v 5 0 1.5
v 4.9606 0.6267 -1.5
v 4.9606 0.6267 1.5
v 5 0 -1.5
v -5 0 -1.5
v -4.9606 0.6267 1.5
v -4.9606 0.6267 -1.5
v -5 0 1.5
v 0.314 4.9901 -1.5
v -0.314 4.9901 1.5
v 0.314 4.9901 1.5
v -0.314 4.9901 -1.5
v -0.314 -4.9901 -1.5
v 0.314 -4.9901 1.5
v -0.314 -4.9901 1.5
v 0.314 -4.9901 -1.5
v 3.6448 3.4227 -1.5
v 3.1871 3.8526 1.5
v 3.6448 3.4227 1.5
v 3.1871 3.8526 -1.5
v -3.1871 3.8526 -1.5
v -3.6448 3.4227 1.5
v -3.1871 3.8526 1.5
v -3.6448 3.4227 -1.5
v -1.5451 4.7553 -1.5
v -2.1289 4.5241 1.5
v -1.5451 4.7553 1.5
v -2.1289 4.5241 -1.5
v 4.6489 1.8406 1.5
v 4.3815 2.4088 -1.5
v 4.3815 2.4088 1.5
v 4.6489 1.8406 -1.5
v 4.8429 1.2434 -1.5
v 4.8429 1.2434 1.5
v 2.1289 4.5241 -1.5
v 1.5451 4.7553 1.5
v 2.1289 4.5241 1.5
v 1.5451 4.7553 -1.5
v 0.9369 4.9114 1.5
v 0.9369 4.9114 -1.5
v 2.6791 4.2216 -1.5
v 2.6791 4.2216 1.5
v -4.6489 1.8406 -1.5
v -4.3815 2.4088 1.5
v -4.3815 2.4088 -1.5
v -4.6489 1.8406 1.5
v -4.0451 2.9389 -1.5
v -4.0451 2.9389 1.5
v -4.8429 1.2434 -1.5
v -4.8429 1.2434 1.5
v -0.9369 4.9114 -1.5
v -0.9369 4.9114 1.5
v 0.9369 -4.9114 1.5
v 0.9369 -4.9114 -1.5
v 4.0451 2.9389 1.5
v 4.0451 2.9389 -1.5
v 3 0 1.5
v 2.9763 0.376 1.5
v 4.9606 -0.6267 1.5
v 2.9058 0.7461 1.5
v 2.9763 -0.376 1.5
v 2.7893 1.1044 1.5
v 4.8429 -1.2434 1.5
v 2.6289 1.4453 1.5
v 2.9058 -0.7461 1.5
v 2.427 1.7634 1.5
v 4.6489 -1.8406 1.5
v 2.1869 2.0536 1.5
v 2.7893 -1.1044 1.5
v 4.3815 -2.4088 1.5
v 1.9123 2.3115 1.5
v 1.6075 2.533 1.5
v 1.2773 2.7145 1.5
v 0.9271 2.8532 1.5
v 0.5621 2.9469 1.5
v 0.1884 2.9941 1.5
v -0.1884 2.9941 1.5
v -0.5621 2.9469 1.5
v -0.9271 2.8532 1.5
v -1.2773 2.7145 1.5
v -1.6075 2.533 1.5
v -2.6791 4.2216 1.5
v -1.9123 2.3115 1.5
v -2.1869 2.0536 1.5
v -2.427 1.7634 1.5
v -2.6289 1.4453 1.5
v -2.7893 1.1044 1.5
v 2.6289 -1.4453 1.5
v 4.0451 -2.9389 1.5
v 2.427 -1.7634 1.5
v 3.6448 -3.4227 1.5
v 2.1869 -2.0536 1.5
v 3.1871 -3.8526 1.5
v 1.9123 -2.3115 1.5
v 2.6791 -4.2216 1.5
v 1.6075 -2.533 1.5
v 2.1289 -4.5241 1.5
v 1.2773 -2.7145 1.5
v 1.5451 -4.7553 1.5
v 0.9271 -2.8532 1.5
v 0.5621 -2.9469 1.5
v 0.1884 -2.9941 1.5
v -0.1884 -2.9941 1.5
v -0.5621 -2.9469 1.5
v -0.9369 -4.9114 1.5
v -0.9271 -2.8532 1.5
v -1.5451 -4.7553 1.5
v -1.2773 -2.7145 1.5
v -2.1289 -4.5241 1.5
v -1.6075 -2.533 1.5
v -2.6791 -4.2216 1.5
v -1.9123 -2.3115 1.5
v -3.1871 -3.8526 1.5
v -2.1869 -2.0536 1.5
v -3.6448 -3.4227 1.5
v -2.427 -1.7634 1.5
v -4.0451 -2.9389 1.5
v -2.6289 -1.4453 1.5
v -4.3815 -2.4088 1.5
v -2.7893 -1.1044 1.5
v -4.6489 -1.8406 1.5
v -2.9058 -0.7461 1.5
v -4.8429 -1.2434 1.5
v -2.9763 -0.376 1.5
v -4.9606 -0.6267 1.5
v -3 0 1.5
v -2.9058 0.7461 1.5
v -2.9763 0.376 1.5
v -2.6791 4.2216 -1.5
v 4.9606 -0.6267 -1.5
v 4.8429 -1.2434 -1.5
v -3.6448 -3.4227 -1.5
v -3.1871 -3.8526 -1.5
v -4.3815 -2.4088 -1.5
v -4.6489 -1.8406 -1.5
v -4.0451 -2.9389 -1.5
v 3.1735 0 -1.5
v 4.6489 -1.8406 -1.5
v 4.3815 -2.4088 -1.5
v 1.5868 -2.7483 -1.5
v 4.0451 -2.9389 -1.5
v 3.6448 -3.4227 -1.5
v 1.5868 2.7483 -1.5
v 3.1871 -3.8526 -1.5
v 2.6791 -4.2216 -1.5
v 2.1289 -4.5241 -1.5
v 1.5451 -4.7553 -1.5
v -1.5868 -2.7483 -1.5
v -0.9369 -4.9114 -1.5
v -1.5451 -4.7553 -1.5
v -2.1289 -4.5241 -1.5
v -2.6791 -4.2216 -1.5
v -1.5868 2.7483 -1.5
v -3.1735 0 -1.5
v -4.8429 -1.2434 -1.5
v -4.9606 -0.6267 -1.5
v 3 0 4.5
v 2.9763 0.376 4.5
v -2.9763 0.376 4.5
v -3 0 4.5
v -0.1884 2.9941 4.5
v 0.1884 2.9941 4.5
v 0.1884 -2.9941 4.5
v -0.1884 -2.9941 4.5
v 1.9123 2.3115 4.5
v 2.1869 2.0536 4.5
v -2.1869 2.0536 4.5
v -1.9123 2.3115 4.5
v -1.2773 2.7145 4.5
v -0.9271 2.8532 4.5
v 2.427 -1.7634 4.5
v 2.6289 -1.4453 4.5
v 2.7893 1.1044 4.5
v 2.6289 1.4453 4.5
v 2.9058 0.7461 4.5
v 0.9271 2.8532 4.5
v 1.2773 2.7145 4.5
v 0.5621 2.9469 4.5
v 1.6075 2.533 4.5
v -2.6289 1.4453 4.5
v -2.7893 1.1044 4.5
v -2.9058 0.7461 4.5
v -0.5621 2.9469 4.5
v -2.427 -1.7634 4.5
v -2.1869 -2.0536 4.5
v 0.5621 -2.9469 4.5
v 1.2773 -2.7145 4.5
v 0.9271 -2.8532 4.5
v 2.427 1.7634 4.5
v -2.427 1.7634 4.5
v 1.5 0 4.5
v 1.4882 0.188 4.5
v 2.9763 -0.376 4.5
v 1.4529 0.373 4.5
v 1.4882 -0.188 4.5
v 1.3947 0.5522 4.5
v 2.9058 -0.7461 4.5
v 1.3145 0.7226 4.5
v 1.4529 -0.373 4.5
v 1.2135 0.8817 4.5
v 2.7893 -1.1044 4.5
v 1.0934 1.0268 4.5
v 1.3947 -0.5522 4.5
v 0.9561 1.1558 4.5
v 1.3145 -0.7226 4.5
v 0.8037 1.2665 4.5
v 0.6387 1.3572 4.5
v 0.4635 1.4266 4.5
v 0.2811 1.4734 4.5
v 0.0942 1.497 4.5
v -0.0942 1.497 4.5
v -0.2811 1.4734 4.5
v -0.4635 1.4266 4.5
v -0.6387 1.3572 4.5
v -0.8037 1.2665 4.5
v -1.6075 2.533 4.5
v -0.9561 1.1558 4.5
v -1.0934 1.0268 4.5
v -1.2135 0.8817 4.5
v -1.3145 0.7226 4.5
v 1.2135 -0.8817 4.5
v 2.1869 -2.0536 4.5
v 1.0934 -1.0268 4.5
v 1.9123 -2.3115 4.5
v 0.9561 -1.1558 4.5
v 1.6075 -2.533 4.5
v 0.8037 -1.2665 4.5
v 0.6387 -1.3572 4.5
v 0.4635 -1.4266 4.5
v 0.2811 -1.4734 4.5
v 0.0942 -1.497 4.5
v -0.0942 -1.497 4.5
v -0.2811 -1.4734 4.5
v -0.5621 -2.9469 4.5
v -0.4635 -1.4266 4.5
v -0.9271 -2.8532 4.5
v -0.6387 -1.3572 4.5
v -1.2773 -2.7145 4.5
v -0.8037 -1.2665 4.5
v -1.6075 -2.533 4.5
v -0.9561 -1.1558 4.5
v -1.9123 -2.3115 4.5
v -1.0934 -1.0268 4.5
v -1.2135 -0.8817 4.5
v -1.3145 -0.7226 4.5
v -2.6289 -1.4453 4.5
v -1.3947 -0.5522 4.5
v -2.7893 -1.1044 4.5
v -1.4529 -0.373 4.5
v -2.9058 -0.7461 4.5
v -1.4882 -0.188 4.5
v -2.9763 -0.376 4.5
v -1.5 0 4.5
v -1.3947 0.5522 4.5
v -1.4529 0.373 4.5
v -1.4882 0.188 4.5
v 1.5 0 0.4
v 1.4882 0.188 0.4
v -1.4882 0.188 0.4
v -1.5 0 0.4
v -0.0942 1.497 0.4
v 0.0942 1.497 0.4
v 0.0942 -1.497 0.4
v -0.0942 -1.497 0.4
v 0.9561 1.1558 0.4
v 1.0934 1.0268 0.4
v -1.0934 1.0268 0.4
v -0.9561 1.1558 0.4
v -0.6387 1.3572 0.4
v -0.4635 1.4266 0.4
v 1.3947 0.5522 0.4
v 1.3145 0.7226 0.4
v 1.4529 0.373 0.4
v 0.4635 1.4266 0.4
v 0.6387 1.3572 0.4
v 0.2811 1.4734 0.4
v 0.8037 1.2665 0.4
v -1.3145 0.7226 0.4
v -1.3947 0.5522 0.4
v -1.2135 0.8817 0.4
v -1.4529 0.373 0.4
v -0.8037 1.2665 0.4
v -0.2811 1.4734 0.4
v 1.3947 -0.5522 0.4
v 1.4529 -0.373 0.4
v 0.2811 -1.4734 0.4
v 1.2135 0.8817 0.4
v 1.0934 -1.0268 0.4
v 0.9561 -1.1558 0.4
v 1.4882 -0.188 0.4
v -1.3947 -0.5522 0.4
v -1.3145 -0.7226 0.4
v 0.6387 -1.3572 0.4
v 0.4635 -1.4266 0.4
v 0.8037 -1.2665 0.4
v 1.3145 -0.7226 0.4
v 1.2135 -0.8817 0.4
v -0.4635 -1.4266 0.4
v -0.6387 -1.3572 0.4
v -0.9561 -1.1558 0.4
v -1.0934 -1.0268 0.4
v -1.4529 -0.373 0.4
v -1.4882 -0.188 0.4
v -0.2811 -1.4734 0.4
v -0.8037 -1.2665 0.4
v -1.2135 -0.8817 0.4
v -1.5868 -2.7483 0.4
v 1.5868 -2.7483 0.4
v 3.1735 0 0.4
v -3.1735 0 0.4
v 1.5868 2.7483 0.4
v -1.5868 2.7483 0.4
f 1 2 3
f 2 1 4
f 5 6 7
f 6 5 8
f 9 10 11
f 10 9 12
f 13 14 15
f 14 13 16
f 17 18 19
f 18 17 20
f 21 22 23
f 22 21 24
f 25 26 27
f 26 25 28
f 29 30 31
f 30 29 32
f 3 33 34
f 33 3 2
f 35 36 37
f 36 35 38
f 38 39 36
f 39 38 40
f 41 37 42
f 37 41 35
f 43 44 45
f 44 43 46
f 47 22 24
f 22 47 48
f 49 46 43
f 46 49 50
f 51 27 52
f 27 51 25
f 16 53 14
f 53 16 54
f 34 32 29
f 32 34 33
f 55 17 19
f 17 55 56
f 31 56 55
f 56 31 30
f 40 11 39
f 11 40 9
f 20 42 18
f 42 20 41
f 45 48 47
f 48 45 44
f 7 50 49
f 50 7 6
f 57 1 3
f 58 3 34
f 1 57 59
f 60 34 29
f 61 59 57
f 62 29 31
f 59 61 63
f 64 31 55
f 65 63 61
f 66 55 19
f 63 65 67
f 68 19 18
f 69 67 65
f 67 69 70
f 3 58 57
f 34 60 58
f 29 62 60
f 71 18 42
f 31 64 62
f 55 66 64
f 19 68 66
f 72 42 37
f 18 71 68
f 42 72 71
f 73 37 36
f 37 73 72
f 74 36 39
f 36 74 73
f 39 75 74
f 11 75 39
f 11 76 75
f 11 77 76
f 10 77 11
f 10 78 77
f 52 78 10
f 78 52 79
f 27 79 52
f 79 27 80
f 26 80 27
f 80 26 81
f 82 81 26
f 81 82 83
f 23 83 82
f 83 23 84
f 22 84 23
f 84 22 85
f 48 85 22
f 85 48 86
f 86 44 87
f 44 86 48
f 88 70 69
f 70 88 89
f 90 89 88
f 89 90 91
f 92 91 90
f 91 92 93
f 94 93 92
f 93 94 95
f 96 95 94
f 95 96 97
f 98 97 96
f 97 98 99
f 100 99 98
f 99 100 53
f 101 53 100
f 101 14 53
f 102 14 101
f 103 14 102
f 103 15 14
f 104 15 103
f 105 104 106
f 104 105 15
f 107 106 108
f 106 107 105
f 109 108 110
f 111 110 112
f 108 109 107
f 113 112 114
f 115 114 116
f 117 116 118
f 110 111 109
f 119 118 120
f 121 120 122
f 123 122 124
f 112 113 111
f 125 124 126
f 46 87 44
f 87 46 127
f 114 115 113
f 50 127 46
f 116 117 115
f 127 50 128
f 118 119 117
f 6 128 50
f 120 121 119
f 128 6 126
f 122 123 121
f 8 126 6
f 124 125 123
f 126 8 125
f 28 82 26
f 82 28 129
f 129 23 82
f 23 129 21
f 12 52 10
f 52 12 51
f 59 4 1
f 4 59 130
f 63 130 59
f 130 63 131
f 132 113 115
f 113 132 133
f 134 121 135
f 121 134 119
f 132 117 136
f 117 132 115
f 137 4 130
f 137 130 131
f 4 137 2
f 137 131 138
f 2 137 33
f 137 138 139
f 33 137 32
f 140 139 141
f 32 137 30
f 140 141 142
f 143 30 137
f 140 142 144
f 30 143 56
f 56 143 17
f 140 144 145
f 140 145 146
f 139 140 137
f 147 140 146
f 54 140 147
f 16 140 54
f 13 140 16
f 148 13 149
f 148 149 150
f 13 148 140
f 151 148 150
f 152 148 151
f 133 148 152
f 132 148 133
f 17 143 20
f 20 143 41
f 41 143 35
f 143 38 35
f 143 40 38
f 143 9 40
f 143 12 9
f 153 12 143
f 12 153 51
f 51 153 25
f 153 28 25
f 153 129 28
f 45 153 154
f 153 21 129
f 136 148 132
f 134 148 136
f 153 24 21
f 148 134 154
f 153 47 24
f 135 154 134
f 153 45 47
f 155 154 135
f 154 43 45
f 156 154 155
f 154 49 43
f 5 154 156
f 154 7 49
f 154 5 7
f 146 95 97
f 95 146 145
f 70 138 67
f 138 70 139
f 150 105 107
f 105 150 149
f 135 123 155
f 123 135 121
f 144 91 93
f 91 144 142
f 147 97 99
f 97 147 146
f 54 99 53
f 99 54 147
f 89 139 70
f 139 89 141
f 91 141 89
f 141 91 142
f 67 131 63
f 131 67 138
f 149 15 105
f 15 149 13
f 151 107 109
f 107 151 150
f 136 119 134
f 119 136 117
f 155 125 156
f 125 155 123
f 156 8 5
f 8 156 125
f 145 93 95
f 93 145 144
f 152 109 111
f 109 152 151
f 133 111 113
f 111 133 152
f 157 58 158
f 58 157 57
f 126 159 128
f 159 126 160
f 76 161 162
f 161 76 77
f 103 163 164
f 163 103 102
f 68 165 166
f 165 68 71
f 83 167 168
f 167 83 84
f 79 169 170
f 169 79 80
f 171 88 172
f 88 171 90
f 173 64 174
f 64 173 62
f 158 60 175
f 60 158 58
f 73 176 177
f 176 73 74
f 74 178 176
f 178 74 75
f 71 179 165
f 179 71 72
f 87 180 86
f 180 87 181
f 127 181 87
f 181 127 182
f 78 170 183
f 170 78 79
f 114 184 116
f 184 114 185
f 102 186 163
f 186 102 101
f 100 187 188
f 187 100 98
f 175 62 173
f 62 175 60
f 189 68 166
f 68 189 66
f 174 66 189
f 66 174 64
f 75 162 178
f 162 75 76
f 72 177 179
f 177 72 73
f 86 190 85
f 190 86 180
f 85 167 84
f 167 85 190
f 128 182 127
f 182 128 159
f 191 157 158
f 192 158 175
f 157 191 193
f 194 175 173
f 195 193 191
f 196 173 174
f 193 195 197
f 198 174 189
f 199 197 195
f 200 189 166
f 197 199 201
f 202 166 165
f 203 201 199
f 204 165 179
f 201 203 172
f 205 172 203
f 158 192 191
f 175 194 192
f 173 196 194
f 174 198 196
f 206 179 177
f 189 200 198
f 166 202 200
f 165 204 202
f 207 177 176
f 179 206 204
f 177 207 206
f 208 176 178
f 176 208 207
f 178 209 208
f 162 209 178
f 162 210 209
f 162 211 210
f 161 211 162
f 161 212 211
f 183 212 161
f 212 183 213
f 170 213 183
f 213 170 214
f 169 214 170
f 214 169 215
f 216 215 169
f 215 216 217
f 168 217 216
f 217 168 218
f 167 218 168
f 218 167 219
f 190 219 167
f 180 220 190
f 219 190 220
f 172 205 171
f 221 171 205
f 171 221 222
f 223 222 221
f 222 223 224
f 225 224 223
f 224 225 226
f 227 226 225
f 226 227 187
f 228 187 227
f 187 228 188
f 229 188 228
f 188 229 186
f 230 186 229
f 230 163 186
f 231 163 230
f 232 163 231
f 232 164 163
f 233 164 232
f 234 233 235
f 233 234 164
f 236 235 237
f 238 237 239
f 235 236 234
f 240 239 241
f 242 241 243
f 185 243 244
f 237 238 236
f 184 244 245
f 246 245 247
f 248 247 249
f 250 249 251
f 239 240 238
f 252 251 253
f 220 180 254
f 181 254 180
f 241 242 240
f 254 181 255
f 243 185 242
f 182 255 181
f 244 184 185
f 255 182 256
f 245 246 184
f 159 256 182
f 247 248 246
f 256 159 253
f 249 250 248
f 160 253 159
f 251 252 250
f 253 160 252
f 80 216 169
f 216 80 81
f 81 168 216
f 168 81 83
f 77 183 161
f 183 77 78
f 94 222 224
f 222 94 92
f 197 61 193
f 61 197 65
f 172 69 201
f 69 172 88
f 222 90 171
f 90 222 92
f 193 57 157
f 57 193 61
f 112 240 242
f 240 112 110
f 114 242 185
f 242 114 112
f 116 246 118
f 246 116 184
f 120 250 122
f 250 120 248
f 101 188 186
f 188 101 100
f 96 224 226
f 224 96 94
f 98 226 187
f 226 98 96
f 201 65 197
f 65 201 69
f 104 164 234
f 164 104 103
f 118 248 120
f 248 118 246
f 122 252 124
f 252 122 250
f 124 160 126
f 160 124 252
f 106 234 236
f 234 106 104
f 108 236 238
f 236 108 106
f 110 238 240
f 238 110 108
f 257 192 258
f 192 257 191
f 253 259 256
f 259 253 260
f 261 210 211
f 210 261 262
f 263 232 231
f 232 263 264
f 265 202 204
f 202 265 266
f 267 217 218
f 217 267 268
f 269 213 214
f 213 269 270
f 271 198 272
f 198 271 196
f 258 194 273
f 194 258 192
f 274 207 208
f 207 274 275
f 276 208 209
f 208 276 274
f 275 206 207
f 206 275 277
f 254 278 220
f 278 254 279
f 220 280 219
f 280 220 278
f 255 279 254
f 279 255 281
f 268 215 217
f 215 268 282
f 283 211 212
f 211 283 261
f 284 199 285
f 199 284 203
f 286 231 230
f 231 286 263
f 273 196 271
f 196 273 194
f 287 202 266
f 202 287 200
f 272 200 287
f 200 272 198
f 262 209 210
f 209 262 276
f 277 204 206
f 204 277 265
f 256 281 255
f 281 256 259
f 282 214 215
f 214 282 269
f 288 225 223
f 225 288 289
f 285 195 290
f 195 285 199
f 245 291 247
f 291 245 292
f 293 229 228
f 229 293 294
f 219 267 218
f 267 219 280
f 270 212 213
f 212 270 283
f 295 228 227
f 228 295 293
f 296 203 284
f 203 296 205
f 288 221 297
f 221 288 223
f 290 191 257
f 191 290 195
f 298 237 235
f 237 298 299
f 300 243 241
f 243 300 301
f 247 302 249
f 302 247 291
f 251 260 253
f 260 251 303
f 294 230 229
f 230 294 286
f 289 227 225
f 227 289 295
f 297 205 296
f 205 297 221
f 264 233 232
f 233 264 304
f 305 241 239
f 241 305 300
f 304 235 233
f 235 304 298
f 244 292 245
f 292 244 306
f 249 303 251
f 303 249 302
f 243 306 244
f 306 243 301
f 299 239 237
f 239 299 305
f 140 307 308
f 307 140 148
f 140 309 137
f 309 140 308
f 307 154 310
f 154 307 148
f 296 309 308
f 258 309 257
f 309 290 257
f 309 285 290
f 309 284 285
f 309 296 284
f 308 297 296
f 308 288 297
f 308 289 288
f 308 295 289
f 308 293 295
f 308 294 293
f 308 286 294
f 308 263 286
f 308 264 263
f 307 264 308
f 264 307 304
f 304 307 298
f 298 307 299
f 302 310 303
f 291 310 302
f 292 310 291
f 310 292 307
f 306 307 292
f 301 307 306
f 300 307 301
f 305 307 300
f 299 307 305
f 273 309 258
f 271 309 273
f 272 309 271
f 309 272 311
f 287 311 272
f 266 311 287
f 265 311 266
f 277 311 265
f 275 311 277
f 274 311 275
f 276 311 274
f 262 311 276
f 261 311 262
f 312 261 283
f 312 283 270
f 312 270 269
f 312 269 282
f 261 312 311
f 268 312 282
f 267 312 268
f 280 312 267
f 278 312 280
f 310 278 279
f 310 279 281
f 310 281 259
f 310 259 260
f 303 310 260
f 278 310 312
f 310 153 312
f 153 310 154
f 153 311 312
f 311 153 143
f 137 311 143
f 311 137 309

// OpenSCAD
$fn = 50;


difference() {
	union() {
		translate(v = [0, 0, -1.5000000000]) {
			rotate(a = [0, 0, 0]) {
				cylinder(h = 3, r = 5.0000000000);
			}
		}
		translate(v = [0, 0, -1.5000000000]) {
			rotate(a = [0, 0, 0]) {
				cylinder(h = 6, r = 3.0000000000);
			}
		}
	}
	union() {
		translate(v = [0, 0, -125.0000000000]) {
			rotate(a = [0, 0, 0]) {
				cylinder(h = 250, r = 1.5000000000);
			}
		}
		translate(v = [0, 0, -2.1000000000]) {
			rotate(a = [0, 0, 0]) {
				#translate(v = [0, 0, 0]) {
					rotate(a = [0, 0, 0]) {
						linear_extrude(height = 2.5000000000) {
							polygon(points = [[3.1735000000, 0.0000000000], [1.5867500000, 2.7483316189], [-1.5867500000, 2.7483316189], [-3.1735000000, 0.0000000000], [-1.5867500000, -2.7483316189], [1.5867500000, -2.7483316189]]);
						}
					}
				}
			}
		}
	}
}
